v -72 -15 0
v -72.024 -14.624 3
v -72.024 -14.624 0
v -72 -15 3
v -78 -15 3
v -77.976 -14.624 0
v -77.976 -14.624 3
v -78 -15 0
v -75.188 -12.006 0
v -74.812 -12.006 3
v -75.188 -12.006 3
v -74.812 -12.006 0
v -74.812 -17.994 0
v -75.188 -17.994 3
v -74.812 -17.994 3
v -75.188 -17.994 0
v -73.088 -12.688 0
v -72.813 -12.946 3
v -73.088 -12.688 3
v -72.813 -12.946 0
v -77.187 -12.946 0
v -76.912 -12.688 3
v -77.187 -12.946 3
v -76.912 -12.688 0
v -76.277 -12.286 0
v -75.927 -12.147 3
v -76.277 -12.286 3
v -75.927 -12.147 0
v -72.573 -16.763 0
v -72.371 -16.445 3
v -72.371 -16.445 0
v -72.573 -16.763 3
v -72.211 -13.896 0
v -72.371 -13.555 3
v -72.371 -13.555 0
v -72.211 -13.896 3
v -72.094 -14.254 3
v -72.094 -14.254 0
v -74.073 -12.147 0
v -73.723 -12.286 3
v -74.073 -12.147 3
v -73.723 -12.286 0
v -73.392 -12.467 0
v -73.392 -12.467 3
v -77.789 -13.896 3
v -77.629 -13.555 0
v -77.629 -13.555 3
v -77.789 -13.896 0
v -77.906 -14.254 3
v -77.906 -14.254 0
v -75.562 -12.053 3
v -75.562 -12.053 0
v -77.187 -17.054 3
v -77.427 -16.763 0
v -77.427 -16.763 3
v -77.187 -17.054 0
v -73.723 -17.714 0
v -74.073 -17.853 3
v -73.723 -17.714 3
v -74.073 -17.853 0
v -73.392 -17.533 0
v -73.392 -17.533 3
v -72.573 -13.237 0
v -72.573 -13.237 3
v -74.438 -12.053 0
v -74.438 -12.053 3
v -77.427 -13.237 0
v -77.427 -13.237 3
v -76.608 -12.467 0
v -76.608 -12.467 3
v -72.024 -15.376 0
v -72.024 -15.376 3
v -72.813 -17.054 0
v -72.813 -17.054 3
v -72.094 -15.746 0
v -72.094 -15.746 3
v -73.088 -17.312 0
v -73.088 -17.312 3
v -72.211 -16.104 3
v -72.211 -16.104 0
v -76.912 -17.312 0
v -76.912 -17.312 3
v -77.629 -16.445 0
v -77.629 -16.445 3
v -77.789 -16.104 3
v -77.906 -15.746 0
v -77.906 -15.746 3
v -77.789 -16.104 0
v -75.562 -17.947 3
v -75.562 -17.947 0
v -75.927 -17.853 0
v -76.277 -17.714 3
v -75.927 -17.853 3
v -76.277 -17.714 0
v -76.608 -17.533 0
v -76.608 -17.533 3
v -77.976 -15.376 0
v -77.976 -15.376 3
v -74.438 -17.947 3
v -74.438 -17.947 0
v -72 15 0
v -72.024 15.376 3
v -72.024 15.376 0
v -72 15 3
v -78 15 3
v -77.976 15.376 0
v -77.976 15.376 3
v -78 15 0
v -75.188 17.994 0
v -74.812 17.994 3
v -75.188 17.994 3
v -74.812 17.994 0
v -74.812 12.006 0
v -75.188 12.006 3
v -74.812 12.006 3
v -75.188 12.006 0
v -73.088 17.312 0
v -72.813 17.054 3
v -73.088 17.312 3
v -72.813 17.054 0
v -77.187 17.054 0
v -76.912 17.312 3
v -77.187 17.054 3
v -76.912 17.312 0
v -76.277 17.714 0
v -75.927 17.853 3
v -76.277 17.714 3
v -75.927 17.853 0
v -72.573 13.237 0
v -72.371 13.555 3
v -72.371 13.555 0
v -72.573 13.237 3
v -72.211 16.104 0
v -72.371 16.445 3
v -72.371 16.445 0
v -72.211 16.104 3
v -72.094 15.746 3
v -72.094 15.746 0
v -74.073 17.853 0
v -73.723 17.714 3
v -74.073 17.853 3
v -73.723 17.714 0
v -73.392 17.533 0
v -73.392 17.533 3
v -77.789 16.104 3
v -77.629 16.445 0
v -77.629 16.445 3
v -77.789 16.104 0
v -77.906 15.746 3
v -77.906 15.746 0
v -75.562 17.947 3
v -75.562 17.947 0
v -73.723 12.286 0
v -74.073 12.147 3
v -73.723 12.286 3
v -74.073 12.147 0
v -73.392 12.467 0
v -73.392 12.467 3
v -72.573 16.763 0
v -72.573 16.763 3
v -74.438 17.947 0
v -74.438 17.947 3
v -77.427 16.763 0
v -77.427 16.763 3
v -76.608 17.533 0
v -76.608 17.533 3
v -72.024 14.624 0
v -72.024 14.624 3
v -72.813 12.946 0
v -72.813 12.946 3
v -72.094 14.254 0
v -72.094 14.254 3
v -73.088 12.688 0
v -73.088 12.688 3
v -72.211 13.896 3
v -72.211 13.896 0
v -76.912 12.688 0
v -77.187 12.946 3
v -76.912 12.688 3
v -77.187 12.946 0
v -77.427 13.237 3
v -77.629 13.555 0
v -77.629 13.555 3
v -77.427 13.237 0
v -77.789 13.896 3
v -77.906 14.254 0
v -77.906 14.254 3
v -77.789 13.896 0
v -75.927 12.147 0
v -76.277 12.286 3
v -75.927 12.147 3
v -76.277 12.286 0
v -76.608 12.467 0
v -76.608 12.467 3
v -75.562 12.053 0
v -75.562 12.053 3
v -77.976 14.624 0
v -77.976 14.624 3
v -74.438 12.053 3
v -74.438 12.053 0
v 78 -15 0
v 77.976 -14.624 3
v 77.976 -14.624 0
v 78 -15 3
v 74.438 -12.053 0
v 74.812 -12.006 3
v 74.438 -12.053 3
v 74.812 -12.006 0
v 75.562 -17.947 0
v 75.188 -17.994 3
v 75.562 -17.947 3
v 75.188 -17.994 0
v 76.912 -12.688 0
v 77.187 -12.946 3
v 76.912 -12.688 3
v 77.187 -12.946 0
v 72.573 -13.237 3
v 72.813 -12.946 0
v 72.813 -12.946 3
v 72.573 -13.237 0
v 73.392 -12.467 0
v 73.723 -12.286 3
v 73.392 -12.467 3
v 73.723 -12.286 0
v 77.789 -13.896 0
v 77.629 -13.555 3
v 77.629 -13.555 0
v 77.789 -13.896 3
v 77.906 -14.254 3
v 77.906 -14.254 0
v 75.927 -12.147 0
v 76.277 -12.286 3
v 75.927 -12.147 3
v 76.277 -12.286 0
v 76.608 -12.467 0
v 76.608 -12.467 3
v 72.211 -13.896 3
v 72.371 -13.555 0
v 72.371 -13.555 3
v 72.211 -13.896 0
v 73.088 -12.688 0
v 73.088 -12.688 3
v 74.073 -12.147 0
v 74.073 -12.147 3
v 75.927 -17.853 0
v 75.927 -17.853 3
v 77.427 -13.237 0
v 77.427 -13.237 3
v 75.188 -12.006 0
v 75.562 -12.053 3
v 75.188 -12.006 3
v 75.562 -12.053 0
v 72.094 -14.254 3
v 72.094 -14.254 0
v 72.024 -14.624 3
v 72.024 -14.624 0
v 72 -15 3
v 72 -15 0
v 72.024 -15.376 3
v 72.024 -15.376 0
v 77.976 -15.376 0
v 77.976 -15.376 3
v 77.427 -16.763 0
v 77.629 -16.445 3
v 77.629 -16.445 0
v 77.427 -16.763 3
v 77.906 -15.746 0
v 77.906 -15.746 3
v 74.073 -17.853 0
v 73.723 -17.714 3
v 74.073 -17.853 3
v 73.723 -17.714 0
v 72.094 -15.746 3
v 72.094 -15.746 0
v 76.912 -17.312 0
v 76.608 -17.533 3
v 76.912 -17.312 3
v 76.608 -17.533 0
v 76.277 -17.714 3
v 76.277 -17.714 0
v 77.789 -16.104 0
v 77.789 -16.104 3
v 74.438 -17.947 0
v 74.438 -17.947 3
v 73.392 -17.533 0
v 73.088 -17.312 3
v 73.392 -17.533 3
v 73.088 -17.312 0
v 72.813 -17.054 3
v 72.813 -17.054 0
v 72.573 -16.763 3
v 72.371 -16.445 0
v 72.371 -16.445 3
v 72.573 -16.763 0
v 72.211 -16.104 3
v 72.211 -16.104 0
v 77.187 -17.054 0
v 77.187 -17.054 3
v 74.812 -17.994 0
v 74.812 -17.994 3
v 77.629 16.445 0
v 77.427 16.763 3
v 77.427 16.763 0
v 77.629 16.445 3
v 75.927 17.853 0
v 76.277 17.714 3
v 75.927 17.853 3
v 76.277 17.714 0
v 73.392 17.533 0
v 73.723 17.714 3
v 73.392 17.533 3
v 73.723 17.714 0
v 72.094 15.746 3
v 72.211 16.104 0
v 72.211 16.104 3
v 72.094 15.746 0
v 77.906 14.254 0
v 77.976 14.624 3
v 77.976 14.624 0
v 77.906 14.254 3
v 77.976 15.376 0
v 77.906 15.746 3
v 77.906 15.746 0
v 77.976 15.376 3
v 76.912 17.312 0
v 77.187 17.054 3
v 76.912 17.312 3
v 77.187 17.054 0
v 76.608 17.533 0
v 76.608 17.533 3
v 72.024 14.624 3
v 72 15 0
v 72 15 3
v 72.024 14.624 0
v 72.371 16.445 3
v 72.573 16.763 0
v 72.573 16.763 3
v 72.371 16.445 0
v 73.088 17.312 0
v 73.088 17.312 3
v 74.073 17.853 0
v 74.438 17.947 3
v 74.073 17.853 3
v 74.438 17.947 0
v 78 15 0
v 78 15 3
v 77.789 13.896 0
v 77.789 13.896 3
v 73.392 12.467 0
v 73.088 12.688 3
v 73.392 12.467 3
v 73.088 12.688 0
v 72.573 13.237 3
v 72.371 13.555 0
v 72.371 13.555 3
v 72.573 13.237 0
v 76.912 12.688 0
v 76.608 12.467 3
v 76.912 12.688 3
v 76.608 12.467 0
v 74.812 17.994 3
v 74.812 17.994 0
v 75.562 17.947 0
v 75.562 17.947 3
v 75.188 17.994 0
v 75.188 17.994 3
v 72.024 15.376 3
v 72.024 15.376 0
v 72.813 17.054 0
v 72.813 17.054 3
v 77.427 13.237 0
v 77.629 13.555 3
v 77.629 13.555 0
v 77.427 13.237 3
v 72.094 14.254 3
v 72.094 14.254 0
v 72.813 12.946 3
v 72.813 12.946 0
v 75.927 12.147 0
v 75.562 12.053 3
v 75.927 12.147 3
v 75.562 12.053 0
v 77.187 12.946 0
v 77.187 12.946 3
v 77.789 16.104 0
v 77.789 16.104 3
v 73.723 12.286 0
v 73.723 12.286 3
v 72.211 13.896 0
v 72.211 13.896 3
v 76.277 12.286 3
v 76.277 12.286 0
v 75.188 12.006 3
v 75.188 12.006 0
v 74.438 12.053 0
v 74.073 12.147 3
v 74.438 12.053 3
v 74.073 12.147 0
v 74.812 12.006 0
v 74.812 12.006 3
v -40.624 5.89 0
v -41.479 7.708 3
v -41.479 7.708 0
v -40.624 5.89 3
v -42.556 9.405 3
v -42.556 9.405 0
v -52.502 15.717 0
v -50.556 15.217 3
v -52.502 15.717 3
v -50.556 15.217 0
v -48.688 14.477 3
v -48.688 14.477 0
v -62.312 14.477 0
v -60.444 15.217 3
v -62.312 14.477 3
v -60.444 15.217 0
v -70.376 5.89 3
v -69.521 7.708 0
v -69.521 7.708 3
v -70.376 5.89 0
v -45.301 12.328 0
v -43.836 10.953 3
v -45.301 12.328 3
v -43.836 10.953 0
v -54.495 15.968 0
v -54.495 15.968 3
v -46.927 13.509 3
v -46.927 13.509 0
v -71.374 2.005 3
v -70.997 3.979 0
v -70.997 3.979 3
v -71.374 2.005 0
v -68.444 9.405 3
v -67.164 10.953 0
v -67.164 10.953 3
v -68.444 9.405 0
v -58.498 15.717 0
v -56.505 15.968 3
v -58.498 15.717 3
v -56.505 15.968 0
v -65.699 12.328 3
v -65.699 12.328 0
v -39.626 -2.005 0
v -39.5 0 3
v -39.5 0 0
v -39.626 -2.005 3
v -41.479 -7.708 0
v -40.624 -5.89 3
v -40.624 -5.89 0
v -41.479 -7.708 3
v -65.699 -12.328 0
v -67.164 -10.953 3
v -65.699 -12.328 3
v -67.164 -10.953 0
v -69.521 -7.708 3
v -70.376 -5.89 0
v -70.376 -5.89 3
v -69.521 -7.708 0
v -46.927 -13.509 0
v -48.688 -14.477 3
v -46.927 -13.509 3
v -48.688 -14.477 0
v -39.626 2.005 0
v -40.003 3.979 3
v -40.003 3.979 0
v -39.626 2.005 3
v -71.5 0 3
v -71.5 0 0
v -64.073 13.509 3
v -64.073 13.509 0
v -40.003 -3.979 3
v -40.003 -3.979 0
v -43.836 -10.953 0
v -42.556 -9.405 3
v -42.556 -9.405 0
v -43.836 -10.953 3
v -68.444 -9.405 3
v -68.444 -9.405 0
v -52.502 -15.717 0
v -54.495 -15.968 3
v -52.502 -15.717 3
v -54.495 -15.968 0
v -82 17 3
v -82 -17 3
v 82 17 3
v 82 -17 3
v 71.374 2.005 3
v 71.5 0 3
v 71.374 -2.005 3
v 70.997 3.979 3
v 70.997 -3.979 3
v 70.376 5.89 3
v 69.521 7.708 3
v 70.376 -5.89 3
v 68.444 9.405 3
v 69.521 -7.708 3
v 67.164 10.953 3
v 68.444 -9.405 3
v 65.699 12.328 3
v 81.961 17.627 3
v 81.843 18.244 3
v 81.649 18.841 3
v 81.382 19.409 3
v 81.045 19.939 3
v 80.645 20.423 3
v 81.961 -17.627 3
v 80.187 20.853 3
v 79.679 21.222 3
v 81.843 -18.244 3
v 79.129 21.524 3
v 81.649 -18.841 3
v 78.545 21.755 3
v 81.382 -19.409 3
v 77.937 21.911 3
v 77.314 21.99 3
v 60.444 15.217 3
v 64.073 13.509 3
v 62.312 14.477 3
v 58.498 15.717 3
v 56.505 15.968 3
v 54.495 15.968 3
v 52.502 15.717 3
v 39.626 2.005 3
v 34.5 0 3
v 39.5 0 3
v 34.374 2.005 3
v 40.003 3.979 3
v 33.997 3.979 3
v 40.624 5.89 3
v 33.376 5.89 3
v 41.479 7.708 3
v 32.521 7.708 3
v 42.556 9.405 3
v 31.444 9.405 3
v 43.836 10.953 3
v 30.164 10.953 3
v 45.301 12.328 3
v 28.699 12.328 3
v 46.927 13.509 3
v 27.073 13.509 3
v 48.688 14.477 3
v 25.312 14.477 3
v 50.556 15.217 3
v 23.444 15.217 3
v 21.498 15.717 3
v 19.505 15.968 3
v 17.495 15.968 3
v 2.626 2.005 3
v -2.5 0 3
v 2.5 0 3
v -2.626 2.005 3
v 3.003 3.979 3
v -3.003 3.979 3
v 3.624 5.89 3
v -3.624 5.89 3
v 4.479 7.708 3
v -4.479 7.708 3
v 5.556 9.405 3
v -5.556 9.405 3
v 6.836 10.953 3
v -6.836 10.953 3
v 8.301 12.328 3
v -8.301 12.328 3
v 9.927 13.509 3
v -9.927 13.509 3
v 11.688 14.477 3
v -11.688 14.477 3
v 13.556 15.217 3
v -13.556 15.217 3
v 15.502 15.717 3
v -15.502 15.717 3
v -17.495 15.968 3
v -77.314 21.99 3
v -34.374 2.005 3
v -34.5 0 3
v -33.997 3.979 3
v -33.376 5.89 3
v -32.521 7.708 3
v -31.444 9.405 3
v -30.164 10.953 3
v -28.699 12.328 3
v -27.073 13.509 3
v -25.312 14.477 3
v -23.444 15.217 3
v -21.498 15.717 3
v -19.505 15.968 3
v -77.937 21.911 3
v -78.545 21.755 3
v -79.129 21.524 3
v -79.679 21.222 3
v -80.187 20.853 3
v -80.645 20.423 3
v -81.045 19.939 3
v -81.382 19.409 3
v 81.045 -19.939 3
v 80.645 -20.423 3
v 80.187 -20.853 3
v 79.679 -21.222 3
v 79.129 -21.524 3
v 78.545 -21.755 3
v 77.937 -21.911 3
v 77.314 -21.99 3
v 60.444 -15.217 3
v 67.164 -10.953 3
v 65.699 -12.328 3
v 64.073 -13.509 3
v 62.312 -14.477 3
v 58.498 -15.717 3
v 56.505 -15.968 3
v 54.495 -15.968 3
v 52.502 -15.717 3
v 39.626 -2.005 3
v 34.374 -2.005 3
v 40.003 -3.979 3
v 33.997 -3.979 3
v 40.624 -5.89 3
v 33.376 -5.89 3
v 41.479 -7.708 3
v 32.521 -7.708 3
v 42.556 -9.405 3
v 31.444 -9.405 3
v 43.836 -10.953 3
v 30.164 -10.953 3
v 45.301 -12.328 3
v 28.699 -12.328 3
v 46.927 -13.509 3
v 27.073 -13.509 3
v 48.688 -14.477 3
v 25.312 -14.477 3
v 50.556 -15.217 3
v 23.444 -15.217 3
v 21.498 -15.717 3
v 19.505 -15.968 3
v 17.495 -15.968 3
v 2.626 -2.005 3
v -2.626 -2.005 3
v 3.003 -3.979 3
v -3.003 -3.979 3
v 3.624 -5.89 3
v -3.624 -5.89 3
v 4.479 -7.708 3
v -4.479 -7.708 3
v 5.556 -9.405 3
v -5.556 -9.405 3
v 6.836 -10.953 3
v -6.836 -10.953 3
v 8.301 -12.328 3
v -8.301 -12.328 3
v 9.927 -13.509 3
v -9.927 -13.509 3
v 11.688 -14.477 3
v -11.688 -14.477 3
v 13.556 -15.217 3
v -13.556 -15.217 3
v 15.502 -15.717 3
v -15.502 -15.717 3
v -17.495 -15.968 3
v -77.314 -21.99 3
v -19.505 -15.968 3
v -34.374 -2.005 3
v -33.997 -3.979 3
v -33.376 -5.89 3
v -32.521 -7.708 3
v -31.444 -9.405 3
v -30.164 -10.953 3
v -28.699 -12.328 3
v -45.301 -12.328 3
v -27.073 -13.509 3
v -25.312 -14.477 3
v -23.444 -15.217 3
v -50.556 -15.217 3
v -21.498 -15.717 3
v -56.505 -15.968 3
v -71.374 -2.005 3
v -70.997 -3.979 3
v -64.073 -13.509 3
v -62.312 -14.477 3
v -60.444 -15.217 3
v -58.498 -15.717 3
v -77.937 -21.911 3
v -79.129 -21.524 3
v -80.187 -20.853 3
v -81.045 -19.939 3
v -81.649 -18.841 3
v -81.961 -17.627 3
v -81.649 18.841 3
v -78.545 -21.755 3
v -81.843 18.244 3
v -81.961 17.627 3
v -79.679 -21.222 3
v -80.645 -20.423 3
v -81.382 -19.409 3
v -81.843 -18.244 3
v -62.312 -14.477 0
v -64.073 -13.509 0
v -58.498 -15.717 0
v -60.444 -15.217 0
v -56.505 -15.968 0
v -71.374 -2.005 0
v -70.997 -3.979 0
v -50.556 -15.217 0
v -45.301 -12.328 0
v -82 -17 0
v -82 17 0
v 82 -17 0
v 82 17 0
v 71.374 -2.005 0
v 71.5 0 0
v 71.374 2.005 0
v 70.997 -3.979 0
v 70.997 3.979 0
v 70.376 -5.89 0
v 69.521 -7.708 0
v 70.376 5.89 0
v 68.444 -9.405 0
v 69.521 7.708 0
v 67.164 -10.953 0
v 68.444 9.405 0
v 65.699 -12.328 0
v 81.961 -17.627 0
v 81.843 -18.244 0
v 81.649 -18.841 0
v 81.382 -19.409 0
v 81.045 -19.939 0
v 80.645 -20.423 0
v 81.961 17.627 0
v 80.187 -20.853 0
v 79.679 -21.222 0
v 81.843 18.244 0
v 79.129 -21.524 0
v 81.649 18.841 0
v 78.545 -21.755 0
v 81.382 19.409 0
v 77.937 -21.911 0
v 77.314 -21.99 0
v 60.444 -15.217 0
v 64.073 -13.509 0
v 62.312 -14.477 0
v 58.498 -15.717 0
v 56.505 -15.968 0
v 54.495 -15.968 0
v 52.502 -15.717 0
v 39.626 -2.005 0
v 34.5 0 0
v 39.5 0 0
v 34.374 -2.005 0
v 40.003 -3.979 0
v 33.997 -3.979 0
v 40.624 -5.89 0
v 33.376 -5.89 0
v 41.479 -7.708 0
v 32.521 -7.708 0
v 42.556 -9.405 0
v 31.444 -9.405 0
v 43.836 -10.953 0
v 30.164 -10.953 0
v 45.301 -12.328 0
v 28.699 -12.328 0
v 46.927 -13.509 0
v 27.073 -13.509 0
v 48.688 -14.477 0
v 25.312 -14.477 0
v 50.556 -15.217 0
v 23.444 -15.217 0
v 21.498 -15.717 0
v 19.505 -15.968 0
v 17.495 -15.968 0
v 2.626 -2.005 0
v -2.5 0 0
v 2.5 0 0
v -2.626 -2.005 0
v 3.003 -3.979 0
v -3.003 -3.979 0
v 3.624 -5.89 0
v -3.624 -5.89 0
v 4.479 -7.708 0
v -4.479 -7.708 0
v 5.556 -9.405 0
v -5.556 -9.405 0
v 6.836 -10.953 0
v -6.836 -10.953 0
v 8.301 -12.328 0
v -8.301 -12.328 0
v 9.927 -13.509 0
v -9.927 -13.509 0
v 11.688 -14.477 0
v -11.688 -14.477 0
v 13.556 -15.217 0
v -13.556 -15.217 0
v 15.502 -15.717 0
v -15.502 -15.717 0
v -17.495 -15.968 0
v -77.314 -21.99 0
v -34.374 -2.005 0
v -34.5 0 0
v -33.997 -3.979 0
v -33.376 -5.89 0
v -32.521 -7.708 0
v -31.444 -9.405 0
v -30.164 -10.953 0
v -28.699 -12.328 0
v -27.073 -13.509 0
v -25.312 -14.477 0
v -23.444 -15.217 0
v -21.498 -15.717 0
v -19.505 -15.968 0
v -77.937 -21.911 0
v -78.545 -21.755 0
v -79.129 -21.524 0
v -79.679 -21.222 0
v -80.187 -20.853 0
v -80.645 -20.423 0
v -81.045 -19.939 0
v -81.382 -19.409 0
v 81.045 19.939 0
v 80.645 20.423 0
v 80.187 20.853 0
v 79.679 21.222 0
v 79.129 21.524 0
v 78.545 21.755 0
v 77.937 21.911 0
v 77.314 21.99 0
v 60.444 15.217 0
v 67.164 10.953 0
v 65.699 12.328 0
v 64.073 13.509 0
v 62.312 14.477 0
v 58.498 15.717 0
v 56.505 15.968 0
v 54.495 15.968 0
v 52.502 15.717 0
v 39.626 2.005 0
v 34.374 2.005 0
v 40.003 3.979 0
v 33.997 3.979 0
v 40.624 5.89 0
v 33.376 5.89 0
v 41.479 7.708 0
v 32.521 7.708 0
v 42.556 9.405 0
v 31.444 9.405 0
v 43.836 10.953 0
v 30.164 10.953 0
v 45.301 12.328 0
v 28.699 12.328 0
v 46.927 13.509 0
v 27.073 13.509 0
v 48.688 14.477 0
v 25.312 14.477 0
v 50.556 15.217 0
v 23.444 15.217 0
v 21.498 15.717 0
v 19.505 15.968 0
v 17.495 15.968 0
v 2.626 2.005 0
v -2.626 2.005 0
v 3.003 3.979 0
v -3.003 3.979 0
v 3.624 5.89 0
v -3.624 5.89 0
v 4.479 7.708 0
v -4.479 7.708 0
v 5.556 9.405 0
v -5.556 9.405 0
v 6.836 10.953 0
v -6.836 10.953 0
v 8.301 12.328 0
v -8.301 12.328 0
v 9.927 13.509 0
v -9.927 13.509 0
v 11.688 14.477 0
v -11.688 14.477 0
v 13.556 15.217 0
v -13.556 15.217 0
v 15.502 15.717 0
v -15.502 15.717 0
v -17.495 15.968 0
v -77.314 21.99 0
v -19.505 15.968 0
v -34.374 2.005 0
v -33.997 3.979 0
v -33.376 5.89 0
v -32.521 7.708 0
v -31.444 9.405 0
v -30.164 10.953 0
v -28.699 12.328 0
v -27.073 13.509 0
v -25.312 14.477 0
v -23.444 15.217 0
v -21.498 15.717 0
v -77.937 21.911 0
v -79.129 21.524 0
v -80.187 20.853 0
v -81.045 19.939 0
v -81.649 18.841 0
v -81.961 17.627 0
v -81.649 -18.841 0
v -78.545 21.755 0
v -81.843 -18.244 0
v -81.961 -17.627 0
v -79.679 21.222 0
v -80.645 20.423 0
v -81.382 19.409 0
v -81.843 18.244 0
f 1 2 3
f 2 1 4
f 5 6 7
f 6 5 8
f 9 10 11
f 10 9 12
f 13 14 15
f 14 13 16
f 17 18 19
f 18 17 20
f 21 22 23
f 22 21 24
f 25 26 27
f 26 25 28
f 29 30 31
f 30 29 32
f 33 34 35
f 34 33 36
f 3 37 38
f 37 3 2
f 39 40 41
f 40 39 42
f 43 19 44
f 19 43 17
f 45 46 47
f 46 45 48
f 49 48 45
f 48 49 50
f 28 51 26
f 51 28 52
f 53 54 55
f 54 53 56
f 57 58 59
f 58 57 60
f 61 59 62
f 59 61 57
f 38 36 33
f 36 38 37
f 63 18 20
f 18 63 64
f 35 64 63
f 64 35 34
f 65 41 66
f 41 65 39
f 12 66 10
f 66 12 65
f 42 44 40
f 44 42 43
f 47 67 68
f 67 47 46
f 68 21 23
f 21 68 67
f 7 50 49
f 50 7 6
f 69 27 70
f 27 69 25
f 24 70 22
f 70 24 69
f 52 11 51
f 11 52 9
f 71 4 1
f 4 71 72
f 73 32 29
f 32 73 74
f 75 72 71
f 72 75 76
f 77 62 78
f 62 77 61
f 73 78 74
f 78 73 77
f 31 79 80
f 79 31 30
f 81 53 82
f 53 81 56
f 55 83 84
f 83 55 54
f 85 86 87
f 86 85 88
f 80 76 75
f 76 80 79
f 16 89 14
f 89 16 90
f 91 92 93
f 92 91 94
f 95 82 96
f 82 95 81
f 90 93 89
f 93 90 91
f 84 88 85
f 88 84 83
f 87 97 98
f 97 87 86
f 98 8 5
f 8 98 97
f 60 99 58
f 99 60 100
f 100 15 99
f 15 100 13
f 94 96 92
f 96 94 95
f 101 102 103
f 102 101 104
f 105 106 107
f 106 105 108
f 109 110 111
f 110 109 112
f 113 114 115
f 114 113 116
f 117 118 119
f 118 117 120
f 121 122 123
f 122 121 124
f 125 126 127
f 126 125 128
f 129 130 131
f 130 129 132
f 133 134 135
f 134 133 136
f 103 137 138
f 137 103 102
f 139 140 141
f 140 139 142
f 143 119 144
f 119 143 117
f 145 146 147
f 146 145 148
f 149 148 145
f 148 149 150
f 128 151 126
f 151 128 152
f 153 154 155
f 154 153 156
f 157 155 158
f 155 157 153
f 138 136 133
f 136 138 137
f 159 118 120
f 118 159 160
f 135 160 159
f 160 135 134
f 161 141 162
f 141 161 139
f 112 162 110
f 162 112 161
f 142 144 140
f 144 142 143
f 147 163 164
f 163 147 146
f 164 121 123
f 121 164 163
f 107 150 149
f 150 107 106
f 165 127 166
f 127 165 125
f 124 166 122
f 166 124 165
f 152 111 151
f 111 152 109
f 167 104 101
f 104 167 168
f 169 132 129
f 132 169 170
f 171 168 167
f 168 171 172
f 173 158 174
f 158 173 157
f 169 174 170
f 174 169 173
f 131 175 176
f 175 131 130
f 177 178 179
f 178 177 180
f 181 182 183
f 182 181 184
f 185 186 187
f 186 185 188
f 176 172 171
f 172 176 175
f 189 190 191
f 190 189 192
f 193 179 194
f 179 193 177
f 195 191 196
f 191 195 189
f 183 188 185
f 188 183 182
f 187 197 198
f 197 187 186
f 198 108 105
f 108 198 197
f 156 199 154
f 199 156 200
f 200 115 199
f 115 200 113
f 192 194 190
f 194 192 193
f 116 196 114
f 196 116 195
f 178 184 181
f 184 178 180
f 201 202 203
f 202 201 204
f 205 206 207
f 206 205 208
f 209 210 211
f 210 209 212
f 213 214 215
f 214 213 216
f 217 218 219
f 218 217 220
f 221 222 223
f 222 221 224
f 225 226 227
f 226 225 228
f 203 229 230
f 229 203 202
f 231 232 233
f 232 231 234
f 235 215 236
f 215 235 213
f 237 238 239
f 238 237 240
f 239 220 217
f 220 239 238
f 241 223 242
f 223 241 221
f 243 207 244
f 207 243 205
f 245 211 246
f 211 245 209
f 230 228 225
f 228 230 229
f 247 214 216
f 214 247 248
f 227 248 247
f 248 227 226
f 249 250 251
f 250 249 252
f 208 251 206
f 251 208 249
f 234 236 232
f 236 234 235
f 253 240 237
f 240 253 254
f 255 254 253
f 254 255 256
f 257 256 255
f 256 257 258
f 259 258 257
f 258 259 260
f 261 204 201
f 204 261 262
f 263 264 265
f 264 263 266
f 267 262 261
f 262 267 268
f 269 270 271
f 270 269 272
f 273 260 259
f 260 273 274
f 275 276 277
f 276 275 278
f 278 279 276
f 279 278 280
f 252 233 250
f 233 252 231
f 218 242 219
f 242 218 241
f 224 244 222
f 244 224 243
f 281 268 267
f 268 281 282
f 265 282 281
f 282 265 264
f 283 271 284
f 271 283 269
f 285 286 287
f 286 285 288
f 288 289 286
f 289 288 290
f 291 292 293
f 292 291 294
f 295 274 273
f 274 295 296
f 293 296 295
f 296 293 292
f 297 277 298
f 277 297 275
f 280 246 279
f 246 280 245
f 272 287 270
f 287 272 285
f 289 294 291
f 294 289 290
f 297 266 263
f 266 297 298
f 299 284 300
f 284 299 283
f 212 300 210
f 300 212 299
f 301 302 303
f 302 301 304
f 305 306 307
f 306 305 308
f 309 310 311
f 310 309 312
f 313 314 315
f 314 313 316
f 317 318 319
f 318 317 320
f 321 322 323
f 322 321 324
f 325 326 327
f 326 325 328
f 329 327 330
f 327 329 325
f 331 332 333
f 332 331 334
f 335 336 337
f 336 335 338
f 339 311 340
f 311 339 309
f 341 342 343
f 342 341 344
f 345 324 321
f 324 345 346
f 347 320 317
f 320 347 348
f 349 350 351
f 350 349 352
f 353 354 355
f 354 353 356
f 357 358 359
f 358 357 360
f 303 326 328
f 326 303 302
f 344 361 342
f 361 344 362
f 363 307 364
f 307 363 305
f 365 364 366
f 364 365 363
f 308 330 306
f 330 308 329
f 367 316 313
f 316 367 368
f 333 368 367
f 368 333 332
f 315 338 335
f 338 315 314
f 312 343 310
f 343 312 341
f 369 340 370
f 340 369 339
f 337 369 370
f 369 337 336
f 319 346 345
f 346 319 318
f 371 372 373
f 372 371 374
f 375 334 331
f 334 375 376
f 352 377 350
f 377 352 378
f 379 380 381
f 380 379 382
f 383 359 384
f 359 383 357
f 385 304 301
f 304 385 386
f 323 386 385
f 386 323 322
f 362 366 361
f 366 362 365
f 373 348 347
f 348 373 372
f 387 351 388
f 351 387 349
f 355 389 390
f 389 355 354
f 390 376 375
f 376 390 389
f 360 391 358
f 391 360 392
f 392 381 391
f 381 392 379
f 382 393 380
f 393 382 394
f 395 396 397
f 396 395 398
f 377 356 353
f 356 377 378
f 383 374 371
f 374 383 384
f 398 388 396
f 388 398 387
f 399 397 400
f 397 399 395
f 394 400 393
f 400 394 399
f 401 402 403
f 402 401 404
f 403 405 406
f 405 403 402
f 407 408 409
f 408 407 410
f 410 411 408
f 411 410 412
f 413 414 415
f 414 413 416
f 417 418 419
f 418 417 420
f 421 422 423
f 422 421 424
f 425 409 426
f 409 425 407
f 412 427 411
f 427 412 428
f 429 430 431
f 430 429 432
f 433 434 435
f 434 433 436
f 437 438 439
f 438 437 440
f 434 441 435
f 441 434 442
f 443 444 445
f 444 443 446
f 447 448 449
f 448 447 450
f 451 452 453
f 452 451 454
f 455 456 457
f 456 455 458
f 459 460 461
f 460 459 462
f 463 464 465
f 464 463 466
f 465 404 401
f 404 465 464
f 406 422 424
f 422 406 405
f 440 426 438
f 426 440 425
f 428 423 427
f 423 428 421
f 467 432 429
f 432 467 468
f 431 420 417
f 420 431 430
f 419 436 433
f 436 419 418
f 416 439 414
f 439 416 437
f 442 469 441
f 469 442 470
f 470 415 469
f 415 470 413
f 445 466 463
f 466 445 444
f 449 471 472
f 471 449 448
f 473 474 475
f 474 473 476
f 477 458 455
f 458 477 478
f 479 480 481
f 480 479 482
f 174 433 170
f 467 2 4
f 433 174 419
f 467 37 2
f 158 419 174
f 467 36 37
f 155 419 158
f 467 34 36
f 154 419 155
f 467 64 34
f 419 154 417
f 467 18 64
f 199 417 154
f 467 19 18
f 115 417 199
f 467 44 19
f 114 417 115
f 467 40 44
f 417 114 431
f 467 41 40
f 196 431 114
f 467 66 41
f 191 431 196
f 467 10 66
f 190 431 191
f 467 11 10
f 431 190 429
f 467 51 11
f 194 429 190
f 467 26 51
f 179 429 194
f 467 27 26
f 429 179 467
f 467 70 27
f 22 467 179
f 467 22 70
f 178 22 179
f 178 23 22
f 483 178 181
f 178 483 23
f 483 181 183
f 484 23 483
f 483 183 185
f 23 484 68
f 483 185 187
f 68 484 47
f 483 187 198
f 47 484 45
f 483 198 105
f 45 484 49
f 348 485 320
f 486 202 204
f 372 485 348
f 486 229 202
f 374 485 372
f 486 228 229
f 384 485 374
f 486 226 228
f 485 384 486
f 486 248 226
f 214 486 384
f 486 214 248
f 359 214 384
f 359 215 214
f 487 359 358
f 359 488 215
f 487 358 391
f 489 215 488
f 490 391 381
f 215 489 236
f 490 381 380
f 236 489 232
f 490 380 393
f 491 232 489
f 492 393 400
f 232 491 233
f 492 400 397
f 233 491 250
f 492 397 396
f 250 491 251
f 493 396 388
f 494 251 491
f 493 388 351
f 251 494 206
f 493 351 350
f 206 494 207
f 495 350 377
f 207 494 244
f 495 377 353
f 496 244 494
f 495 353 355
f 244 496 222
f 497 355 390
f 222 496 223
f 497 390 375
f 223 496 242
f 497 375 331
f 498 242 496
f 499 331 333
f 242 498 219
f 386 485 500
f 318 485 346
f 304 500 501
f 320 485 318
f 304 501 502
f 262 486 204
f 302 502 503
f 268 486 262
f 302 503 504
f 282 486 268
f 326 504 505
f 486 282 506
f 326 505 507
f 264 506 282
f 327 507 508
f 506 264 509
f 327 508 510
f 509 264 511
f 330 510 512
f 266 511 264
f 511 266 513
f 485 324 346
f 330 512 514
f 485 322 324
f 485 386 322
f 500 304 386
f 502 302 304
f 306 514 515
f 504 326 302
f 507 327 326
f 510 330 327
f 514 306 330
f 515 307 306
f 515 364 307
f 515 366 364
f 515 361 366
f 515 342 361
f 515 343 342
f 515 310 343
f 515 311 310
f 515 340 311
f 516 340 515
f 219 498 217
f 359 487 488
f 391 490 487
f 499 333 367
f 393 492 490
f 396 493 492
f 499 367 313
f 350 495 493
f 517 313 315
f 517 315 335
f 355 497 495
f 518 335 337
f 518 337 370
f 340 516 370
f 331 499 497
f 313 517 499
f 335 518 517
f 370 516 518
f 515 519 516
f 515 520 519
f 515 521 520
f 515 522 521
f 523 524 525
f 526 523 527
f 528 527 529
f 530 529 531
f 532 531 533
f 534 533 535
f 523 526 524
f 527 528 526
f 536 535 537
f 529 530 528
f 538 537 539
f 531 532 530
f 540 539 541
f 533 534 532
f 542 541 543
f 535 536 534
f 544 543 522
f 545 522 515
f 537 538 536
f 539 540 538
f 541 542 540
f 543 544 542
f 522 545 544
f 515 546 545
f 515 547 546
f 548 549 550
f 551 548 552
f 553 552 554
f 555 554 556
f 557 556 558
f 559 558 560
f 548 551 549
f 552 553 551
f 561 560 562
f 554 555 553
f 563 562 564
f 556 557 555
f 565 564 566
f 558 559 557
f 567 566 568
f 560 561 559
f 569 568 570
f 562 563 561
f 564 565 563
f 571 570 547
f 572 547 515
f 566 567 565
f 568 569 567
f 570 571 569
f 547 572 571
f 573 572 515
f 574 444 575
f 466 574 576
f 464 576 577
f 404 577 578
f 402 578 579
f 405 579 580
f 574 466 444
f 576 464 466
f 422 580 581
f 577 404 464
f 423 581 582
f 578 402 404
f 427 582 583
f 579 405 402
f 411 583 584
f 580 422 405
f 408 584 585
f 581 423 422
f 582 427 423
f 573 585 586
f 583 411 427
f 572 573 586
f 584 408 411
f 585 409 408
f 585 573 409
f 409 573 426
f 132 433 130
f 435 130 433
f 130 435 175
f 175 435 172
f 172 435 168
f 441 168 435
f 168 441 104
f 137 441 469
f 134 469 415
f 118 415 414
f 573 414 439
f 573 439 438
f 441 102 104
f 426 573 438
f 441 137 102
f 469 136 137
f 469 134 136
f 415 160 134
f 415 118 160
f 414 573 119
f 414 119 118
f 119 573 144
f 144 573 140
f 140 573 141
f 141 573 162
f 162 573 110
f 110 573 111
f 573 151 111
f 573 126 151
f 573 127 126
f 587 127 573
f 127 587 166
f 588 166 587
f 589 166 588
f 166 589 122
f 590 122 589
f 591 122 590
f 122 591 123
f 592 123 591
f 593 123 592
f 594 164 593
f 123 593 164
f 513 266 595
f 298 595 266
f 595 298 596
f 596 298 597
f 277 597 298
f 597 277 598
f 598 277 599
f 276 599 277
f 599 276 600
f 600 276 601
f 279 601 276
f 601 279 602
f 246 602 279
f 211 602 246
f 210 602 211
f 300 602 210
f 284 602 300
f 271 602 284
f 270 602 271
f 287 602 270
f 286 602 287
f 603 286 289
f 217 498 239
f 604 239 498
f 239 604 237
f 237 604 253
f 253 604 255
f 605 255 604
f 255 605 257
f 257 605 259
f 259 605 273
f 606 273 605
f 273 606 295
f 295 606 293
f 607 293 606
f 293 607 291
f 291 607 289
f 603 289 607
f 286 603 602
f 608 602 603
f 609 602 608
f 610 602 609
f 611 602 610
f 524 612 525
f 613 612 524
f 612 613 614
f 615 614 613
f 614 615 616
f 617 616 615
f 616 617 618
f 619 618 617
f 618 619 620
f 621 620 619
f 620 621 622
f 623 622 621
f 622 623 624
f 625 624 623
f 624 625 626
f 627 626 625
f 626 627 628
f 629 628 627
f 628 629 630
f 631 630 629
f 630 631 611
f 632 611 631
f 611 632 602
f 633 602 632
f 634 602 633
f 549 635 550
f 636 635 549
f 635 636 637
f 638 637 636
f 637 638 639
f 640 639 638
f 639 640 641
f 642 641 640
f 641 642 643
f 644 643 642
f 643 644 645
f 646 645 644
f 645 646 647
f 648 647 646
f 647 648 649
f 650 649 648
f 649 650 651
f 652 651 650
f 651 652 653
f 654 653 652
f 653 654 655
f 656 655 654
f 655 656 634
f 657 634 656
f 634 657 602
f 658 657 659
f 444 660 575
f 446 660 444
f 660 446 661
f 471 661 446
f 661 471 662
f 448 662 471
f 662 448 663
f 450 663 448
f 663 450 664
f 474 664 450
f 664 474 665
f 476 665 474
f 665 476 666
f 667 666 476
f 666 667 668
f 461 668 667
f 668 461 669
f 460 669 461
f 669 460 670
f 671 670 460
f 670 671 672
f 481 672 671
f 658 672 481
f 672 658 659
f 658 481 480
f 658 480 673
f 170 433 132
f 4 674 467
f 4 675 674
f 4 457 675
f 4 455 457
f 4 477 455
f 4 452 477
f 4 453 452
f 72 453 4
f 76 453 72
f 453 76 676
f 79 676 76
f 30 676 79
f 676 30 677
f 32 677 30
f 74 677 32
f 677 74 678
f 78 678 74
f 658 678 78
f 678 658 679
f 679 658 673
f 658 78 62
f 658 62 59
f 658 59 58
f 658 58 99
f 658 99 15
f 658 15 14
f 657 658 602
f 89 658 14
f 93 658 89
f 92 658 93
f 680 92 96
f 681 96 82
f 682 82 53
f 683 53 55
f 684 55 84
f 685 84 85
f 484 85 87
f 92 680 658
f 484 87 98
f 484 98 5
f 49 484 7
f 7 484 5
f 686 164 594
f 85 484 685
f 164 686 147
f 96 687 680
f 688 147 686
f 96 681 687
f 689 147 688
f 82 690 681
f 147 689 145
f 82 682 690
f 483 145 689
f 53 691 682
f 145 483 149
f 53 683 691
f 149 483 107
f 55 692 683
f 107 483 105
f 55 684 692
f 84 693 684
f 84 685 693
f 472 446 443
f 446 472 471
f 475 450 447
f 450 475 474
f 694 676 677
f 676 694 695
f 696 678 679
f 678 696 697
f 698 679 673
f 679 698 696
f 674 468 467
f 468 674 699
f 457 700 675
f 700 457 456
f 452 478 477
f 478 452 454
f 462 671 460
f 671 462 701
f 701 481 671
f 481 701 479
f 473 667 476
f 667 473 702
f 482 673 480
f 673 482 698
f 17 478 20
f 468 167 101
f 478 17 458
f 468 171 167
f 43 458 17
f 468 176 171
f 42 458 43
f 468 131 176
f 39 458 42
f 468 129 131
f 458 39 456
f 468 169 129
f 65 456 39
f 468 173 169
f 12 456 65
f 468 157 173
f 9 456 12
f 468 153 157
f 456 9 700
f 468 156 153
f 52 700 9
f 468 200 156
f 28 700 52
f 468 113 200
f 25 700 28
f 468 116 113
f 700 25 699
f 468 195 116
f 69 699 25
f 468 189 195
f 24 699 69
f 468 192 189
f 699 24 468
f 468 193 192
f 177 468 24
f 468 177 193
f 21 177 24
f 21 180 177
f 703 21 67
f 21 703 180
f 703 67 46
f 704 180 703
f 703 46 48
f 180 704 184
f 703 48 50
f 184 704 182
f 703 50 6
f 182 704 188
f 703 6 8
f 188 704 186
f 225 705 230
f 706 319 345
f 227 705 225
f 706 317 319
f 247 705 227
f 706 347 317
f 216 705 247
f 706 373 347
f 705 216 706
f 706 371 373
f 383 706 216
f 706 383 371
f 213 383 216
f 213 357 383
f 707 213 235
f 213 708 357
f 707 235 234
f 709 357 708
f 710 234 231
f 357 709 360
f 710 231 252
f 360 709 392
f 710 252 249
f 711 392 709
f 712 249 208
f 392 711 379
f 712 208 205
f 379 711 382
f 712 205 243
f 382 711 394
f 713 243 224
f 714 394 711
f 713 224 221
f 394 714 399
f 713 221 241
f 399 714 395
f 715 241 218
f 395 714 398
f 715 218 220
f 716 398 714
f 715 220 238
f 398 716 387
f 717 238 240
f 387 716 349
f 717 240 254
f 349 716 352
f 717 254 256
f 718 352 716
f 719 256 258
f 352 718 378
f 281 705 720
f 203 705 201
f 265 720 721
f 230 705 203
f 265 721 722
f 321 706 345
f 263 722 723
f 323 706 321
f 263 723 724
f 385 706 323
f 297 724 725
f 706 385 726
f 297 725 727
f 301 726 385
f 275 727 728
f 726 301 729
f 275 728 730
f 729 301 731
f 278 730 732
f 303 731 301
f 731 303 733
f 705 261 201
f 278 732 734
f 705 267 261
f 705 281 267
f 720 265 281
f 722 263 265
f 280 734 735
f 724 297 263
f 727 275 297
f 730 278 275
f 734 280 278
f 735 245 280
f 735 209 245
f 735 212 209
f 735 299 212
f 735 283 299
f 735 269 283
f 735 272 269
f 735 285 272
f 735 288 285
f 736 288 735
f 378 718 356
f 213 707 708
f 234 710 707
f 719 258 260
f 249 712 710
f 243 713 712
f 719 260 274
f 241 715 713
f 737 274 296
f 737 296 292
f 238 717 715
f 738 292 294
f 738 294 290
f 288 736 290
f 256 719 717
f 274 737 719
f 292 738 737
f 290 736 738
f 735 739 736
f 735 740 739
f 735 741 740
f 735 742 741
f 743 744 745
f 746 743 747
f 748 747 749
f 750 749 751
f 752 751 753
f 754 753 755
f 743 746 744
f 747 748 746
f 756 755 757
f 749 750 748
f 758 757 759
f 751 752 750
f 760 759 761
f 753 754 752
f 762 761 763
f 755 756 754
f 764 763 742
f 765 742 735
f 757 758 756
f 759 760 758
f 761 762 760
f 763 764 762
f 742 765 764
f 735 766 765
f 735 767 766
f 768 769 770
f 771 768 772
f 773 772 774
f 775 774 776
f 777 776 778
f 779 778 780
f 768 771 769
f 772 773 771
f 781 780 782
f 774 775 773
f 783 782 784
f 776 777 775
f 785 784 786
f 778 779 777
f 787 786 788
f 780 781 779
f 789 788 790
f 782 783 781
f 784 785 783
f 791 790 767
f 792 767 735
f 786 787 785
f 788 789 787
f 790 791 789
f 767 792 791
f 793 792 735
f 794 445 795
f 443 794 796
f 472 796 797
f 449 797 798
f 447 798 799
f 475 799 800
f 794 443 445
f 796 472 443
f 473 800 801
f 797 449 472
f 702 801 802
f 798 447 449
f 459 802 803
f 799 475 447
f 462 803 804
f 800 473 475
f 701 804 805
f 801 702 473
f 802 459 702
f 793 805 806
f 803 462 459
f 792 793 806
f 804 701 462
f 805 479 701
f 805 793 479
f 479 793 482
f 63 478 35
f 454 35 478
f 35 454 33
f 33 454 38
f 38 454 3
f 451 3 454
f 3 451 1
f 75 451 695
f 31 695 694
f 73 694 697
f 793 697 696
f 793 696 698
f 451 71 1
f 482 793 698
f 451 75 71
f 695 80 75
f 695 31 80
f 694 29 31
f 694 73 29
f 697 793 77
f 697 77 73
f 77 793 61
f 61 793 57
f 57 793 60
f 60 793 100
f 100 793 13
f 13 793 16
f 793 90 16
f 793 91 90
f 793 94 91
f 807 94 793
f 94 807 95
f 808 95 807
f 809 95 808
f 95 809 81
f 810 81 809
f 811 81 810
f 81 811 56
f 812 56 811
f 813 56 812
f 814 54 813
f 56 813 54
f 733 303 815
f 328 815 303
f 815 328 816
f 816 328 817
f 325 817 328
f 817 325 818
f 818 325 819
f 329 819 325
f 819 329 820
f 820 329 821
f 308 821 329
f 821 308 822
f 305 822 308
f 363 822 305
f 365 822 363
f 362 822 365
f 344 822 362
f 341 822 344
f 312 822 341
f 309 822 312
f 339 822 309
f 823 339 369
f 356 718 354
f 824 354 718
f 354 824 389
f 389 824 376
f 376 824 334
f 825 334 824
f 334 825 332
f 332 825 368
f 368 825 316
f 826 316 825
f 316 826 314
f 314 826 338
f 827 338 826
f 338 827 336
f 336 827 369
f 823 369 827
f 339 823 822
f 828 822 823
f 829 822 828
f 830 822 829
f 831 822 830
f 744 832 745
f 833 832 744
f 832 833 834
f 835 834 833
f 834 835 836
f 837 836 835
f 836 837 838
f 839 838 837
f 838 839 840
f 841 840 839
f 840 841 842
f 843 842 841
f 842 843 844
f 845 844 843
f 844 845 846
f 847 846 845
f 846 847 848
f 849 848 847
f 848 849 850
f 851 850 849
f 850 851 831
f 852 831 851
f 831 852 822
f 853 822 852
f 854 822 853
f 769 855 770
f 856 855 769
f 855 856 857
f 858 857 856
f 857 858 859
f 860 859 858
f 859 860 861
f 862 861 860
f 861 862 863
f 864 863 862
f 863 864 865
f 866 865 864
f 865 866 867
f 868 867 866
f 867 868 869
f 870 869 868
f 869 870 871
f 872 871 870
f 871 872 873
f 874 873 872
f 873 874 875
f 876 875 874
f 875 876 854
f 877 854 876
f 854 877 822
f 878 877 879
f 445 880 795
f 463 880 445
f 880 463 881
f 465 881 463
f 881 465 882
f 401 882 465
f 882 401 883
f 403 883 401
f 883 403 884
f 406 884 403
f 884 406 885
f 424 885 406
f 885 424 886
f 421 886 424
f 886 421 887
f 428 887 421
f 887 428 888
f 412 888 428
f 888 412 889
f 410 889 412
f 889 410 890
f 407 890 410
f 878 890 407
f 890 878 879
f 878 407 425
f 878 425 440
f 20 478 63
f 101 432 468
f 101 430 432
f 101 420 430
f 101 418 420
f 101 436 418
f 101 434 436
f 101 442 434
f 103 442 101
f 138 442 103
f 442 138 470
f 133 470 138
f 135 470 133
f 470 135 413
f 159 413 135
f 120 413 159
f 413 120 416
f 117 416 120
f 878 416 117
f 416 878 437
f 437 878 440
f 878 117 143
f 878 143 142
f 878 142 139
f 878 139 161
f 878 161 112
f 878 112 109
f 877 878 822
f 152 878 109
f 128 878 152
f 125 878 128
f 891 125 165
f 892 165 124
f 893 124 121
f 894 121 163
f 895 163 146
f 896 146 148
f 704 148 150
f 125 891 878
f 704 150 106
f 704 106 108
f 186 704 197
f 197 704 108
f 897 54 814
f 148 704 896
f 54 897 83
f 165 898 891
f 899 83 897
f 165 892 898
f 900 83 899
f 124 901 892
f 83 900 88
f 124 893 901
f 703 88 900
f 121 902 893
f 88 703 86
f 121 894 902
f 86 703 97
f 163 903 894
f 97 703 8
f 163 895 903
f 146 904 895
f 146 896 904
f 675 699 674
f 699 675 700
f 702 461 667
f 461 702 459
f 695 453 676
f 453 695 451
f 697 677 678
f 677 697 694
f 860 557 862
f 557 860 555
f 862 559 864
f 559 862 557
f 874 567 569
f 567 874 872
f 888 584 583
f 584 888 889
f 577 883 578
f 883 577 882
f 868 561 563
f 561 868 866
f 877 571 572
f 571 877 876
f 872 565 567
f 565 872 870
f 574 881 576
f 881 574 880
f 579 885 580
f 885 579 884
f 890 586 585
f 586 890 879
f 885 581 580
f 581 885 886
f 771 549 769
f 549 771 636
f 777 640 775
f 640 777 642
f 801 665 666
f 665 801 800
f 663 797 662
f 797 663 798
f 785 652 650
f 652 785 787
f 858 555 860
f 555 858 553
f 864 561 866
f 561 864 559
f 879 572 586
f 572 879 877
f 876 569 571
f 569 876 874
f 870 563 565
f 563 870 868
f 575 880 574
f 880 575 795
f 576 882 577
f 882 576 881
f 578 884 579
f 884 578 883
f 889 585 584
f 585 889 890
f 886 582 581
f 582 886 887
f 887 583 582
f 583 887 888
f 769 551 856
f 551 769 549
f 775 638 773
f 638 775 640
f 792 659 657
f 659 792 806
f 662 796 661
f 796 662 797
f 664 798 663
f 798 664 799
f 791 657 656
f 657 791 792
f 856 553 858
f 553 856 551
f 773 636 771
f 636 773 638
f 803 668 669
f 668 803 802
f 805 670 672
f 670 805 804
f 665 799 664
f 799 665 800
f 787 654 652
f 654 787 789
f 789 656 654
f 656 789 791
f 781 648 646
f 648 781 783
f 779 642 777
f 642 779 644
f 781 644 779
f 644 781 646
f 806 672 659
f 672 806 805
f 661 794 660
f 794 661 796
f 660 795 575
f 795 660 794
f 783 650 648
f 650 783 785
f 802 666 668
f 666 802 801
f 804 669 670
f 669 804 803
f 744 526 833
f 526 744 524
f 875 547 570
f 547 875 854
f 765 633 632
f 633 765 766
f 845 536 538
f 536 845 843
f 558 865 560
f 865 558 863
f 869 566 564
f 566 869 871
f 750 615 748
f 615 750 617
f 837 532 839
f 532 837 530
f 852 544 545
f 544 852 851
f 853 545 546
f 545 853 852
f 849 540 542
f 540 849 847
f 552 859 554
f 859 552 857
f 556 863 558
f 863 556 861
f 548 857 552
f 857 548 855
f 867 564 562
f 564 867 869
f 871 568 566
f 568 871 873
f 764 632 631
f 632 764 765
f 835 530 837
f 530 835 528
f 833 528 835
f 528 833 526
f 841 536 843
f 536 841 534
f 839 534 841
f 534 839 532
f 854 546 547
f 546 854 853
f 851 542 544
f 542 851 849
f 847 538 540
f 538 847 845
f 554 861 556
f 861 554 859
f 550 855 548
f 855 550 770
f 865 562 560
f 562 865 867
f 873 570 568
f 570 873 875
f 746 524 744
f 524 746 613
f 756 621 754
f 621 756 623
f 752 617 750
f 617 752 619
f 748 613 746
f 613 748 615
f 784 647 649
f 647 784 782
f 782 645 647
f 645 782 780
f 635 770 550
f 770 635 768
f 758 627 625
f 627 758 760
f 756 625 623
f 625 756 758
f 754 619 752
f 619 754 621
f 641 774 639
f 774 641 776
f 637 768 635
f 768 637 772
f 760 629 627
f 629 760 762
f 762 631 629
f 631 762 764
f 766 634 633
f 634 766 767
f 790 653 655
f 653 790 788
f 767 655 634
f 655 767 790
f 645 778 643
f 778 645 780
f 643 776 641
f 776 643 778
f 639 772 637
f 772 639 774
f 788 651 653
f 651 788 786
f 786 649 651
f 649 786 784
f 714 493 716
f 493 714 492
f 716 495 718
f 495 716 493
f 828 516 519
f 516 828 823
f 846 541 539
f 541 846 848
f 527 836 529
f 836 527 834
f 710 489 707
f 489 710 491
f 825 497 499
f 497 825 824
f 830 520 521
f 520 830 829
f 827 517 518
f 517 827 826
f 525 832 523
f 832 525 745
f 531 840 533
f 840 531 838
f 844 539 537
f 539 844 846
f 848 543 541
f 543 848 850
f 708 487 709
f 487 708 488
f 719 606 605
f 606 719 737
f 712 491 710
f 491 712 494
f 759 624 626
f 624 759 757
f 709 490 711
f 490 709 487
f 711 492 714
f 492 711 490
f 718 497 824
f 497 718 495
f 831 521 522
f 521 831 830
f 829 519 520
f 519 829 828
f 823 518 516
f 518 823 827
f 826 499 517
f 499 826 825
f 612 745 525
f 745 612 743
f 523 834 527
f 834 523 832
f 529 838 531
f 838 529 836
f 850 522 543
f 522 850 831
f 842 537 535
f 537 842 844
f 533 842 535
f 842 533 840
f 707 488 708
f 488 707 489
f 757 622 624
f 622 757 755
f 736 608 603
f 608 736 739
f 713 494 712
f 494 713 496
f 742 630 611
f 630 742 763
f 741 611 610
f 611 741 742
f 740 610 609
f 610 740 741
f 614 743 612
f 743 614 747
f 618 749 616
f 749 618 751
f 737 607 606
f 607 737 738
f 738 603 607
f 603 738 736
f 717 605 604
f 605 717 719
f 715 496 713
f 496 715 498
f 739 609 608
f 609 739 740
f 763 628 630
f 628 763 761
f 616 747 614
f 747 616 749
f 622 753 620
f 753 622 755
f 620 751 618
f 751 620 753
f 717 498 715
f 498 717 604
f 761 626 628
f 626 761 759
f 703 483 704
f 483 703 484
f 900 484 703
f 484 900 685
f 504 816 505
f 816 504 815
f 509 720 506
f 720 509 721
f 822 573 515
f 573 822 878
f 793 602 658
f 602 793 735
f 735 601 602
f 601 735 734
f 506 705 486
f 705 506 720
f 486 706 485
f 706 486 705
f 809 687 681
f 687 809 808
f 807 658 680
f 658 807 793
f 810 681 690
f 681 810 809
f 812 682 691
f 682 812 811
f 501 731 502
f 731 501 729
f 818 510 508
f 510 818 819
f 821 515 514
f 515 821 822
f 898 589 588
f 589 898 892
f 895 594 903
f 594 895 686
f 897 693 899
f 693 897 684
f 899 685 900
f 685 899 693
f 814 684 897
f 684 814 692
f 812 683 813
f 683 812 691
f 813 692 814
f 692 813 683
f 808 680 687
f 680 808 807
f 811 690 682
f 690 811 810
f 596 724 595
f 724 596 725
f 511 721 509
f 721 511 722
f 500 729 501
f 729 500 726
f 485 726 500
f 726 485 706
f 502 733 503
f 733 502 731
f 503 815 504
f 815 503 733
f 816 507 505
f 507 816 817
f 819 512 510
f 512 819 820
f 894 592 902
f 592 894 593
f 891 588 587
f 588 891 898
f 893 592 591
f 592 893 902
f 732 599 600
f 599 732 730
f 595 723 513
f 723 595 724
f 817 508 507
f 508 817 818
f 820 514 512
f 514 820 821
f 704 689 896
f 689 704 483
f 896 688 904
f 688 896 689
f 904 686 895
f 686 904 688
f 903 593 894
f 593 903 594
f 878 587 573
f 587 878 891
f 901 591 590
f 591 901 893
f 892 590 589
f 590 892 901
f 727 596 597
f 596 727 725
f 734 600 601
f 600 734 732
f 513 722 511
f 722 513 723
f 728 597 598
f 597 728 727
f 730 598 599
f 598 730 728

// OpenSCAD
$fn = 50;


difference() {
	union() {
		hull() {
			translate(v = [-77.0000000000, 17.0000000000, 0]) {
				cylinder(h = 3, r = 5);
			}
			translate(v = [77.0000000000, 17.0000000000, 0]) {
				cylinder(h = 3, r = 5);
			}
			translate(v = [-77.0000000000, -17.0000000000, 0]) {
				cylinder(h = 3, r = 5);
			}
			translate(v = [77.0000000000, -17.0000000000, 0]) {
				cylinder(h = 3, r = 5);
			}
		}
	}
	union() {
		#translate(v = [-75.0000000000, -15.0000000000, -100.0000000000]) {
			cylinder(h = 200, r = 3.0000000000);
		}
		#translate(v = [-75.0000000000, 15.0000000000, -100.0000000000]) {
			cylinder(h = 200, r = 3.0000000000);
		}
		#translate(v = [75.0000000000, -15.0000000000, -100.0000000000]) {
			cylinder(h = 200, r = 3.0000000000);
		}
		#translate(v = [75.0000000000, 15.0000000000, -100.0000000000]) {
			cylinder(h = 200, r = 3.0000000000);
		}
		#translate(v = [-55.5000000000, 0, 0]) {
			cylinder(h = 3, r = 16.0000000000);
		}
		#translate(v = [-18.5000000000, 0, 0]) {
			cylinder(h = 3, r = 16.0000000000);
		}
		#translate(v = [18.5000000000, 0, 0]) {
			cylinder(h = 3, r = 16.0000000000);
		}
		#translate(v = [55.5000000000, 0, 0]) {
			cylinder(h = 3, r = 16.0000000000);
		}
	}
}
